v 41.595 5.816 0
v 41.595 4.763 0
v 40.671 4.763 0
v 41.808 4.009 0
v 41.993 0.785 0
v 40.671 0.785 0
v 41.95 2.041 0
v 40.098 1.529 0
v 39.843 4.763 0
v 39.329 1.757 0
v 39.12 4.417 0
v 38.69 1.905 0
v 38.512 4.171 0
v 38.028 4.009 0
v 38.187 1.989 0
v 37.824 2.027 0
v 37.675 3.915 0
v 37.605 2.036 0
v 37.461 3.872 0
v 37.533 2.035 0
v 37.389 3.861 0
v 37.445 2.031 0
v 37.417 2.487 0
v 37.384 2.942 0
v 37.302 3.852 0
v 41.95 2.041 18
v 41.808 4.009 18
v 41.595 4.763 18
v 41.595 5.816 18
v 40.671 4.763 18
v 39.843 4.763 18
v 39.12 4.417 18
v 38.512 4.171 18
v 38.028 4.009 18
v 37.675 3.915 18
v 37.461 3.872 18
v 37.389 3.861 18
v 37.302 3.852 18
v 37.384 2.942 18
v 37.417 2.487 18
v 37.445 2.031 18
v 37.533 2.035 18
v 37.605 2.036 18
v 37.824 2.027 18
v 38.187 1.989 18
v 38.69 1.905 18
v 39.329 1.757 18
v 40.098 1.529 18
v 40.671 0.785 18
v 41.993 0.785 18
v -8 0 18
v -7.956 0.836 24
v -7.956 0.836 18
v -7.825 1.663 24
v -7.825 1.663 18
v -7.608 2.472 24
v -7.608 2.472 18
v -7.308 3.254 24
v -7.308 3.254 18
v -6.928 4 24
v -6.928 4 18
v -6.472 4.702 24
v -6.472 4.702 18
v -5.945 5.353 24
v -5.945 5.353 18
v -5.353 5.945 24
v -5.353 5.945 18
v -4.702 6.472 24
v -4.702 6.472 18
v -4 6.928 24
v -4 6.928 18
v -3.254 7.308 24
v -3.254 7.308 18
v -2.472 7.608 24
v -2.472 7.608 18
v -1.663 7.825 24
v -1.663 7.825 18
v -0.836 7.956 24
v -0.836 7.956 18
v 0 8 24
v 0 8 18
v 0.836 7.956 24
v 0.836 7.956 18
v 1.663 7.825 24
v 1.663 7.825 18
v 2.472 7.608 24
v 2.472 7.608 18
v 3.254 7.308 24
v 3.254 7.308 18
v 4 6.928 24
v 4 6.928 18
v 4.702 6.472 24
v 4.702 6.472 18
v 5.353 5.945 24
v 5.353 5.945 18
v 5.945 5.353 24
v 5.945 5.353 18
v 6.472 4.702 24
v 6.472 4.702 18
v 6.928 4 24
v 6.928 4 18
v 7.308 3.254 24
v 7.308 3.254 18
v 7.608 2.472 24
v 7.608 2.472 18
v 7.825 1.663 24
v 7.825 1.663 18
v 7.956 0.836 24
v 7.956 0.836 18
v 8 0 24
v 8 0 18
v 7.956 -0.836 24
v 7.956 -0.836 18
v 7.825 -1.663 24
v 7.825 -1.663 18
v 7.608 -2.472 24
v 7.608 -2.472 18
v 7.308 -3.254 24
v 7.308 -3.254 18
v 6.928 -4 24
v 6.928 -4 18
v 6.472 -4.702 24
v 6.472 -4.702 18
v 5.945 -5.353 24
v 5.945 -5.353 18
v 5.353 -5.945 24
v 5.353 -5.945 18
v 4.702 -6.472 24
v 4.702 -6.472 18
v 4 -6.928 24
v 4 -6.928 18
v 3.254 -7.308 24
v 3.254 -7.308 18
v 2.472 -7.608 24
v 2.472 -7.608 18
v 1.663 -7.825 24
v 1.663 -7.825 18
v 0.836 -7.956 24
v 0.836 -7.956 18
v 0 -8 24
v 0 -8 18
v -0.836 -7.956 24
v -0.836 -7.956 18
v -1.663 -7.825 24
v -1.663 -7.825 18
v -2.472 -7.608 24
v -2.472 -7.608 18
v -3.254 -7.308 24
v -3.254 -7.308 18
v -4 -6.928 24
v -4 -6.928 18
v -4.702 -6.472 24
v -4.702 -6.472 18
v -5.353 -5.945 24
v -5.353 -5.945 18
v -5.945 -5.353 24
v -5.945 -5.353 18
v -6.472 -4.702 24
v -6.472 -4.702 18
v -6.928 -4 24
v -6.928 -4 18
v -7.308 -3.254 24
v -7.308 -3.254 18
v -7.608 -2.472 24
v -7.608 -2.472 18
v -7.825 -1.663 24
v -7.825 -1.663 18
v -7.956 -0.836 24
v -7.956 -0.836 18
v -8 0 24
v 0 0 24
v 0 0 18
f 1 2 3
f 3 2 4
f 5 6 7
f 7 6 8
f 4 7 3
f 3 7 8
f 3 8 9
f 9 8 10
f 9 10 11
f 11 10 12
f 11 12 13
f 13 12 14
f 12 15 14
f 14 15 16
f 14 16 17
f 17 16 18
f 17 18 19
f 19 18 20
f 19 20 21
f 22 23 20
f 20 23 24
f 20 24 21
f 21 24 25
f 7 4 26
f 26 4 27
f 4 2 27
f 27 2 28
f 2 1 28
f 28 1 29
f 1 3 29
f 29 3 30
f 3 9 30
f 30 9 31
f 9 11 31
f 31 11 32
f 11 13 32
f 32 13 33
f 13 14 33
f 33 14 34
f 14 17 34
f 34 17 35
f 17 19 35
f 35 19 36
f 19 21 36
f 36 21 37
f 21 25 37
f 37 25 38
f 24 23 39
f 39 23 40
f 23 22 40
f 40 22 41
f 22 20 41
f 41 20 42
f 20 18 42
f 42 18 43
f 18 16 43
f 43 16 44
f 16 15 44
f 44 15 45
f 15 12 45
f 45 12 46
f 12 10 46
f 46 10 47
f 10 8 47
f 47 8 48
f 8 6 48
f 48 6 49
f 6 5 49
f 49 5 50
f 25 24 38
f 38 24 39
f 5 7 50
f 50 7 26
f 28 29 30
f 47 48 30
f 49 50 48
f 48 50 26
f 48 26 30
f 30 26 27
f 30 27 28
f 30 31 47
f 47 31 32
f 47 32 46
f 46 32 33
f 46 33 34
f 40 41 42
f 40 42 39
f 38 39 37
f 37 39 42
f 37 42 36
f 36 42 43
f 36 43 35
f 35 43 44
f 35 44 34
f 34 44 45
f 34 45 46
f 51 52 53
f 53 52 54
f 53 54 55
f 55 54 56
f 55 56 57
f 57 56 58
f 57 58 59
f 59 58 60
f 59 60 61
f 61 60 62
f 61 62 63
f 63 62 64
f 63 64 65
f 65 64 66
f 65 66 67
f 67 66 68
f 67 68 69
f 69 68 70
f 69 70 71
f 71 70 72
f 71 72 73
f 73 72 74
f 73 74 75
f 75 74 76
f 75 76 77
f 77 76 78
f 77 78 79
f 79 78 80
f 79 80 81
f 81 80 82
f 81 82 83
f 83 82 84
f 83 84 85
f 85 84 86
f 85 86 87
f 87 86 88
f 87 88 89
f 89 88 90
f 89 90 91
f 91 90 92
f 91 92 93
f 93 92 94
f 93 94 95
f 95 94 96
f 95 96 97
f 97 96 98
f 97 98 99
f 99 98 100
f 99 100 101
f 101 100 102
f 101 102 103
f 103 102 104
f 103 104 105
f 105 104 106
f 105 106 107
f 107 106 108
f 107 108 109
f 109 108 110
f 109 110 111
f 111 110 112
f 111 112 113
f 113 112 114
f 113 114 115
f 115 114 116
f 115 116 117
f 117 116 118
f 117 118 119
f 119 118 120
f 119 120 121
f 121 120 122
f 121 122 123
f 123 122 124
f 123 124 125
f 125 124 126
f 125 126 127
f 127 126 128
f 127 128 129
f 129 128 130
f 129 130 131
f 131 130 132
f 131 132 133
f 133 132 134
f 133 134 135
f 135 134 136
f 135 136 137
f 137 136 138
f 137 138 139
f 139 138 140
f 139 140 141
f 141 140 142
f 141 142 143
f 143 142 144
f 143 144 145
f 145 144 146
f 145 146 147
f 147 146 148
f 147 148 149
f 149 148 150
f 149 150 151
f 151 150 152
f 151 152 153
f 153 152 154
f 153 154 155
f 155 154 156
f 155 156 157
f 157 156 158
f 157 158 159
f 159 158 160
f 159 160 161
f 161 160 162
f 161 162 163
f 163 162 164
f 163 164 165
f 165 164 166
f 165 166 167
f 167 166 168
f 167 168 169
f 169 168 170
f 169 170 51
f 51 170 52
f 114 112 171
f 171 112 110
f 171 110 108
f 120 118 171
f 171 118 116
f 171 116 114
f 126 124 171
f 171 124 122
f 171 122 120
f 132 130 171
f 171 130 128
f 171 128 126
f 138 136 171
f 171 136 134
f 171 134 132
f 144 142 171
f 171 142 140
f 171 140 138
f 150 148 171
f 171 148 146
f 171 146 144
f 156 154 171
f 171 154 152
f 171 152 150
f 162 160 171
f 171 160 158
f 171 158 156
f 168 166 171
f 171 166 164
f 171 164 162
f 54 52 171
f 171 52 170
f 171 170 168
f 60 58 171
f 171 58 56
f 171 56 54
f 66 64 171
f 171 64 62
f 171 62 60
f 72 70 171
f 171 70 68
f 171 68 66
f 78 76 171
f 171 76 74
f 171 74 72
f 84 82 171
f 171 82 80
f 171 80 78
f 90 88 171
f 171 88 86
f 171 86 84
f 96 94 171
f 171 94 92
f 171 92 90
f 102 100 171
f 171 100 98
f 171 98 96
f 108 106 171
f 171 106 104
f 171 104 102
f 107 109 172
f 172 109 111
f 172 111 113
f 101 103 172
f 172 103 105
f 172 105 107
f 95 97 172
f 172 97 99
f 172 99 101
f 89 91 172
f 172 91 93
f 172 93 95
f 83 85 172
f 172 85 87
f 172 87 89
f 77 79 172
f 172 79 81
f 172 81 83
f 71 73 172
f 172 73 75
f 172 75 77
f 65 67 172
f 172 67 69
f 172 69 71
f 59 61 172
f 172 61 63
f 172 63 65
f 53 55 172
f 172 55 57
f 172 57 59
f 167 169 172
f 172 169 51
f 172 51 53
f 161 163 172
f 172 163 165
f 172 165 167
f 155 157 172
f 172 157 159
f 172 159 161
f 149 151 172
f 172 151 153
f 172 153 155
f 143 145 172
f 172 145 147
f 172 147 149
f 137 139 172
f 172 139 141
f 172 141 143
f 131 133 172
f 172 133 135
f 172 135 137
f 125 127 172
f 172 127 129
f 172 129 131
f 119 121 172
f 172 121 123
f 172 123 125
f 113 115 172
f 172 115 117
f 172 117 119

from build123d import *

# Parameters (mm, degrees)
SKETCH_1_R          = 8
EXTRUDE_1_DEPTH     = 24
SKETCH_2_R          = 42
EXTRUDE_2_DEPTH     = 18
SKETCH_3_OUTSIDE_W  = 110.238
SKETCH_3_OUTSIDE_H  = 110.238
CUT_EXTRUDE_1_DEPTH = 63.064482597


with BuildPart() as part:
    # 草图1 → 凸台-拉伸1 (new body)
    with BuildSketch(Plane.XY):
        Circle(SKETCH_1_R)
    extrude(amount=EXTRUDE_1_DEPTH)

    # 草图2 → 凸台-拉伸2 (add)
    with BuildSketch(Plane.XY):
        Circle(SKETCH_2_R)
    extrude(amount=EXTRUDE_2_DEPTH)

    # 草图3 outside → 切除-拉伸1 (cut, through all)
    with BuildSketch(Plane.XY.offset(18)):
        Rectangle(SKETCH_3_OUTSIDE_W, SKETCH_3_OUTSIDE_H)
        Polygon((37.301622014, 3.852141632), (37.388858074, 3.861150507), (37.461006221, 3.871643974), (37.675366655, 3.915051723), (38.027566914, 4.009008778), (38.511598579, 4.17069916), (39.119858589, 4.416721181), (39.843200936, 4.762956257), (40.670998458, 4.762956257), (41.595385312, 5.815833623), (41.595385312, 4.762956257), (41.808227045, 4.009008778), (41.950388094, 2.040818158), (41.992672187, 0.784526971), (40.670998458, 0.784526971), (40.097755581, 1.528532152), (39.329155687, 1.757348851), (38.689898048, 1.905189124), (38.18653167, 1.989169611), (37.823969461, 2.026873652), (37.605457691, 2.036213627), (37.532556268, 2.035291448), (37.44498493, 2.030542685), (37.417469201, 2.486563607), (37.384400063, 2.942215479), align=None, mode=Mode.SUBTRACT)
    extrude(amount=-CUT_EXTRUDE_1_DEPTH, mode=Mode.SUBTRACT)


with BuildPart() as cut_extrude_1_piece_1:
    # of the separate pieces the step leaves, piece 1, a body of its own (cut_extrude_1_pieces)
    add(part.part.solids().sort_by_distance((8, 0, 18))[0])


with BuildPart() as cut_extrude_1_piece_2:
    # of the separate pieces the step leaves, piece 2, a body of its own (cut_extrude_1_pieces)
    add(part.part.solids().sort_by_distance((41.992672187, 0.784526971, 0))[0])


solid = Compound([cut_extrude_1_piece_1.part, cut_extrude_1_piece_2.part])
